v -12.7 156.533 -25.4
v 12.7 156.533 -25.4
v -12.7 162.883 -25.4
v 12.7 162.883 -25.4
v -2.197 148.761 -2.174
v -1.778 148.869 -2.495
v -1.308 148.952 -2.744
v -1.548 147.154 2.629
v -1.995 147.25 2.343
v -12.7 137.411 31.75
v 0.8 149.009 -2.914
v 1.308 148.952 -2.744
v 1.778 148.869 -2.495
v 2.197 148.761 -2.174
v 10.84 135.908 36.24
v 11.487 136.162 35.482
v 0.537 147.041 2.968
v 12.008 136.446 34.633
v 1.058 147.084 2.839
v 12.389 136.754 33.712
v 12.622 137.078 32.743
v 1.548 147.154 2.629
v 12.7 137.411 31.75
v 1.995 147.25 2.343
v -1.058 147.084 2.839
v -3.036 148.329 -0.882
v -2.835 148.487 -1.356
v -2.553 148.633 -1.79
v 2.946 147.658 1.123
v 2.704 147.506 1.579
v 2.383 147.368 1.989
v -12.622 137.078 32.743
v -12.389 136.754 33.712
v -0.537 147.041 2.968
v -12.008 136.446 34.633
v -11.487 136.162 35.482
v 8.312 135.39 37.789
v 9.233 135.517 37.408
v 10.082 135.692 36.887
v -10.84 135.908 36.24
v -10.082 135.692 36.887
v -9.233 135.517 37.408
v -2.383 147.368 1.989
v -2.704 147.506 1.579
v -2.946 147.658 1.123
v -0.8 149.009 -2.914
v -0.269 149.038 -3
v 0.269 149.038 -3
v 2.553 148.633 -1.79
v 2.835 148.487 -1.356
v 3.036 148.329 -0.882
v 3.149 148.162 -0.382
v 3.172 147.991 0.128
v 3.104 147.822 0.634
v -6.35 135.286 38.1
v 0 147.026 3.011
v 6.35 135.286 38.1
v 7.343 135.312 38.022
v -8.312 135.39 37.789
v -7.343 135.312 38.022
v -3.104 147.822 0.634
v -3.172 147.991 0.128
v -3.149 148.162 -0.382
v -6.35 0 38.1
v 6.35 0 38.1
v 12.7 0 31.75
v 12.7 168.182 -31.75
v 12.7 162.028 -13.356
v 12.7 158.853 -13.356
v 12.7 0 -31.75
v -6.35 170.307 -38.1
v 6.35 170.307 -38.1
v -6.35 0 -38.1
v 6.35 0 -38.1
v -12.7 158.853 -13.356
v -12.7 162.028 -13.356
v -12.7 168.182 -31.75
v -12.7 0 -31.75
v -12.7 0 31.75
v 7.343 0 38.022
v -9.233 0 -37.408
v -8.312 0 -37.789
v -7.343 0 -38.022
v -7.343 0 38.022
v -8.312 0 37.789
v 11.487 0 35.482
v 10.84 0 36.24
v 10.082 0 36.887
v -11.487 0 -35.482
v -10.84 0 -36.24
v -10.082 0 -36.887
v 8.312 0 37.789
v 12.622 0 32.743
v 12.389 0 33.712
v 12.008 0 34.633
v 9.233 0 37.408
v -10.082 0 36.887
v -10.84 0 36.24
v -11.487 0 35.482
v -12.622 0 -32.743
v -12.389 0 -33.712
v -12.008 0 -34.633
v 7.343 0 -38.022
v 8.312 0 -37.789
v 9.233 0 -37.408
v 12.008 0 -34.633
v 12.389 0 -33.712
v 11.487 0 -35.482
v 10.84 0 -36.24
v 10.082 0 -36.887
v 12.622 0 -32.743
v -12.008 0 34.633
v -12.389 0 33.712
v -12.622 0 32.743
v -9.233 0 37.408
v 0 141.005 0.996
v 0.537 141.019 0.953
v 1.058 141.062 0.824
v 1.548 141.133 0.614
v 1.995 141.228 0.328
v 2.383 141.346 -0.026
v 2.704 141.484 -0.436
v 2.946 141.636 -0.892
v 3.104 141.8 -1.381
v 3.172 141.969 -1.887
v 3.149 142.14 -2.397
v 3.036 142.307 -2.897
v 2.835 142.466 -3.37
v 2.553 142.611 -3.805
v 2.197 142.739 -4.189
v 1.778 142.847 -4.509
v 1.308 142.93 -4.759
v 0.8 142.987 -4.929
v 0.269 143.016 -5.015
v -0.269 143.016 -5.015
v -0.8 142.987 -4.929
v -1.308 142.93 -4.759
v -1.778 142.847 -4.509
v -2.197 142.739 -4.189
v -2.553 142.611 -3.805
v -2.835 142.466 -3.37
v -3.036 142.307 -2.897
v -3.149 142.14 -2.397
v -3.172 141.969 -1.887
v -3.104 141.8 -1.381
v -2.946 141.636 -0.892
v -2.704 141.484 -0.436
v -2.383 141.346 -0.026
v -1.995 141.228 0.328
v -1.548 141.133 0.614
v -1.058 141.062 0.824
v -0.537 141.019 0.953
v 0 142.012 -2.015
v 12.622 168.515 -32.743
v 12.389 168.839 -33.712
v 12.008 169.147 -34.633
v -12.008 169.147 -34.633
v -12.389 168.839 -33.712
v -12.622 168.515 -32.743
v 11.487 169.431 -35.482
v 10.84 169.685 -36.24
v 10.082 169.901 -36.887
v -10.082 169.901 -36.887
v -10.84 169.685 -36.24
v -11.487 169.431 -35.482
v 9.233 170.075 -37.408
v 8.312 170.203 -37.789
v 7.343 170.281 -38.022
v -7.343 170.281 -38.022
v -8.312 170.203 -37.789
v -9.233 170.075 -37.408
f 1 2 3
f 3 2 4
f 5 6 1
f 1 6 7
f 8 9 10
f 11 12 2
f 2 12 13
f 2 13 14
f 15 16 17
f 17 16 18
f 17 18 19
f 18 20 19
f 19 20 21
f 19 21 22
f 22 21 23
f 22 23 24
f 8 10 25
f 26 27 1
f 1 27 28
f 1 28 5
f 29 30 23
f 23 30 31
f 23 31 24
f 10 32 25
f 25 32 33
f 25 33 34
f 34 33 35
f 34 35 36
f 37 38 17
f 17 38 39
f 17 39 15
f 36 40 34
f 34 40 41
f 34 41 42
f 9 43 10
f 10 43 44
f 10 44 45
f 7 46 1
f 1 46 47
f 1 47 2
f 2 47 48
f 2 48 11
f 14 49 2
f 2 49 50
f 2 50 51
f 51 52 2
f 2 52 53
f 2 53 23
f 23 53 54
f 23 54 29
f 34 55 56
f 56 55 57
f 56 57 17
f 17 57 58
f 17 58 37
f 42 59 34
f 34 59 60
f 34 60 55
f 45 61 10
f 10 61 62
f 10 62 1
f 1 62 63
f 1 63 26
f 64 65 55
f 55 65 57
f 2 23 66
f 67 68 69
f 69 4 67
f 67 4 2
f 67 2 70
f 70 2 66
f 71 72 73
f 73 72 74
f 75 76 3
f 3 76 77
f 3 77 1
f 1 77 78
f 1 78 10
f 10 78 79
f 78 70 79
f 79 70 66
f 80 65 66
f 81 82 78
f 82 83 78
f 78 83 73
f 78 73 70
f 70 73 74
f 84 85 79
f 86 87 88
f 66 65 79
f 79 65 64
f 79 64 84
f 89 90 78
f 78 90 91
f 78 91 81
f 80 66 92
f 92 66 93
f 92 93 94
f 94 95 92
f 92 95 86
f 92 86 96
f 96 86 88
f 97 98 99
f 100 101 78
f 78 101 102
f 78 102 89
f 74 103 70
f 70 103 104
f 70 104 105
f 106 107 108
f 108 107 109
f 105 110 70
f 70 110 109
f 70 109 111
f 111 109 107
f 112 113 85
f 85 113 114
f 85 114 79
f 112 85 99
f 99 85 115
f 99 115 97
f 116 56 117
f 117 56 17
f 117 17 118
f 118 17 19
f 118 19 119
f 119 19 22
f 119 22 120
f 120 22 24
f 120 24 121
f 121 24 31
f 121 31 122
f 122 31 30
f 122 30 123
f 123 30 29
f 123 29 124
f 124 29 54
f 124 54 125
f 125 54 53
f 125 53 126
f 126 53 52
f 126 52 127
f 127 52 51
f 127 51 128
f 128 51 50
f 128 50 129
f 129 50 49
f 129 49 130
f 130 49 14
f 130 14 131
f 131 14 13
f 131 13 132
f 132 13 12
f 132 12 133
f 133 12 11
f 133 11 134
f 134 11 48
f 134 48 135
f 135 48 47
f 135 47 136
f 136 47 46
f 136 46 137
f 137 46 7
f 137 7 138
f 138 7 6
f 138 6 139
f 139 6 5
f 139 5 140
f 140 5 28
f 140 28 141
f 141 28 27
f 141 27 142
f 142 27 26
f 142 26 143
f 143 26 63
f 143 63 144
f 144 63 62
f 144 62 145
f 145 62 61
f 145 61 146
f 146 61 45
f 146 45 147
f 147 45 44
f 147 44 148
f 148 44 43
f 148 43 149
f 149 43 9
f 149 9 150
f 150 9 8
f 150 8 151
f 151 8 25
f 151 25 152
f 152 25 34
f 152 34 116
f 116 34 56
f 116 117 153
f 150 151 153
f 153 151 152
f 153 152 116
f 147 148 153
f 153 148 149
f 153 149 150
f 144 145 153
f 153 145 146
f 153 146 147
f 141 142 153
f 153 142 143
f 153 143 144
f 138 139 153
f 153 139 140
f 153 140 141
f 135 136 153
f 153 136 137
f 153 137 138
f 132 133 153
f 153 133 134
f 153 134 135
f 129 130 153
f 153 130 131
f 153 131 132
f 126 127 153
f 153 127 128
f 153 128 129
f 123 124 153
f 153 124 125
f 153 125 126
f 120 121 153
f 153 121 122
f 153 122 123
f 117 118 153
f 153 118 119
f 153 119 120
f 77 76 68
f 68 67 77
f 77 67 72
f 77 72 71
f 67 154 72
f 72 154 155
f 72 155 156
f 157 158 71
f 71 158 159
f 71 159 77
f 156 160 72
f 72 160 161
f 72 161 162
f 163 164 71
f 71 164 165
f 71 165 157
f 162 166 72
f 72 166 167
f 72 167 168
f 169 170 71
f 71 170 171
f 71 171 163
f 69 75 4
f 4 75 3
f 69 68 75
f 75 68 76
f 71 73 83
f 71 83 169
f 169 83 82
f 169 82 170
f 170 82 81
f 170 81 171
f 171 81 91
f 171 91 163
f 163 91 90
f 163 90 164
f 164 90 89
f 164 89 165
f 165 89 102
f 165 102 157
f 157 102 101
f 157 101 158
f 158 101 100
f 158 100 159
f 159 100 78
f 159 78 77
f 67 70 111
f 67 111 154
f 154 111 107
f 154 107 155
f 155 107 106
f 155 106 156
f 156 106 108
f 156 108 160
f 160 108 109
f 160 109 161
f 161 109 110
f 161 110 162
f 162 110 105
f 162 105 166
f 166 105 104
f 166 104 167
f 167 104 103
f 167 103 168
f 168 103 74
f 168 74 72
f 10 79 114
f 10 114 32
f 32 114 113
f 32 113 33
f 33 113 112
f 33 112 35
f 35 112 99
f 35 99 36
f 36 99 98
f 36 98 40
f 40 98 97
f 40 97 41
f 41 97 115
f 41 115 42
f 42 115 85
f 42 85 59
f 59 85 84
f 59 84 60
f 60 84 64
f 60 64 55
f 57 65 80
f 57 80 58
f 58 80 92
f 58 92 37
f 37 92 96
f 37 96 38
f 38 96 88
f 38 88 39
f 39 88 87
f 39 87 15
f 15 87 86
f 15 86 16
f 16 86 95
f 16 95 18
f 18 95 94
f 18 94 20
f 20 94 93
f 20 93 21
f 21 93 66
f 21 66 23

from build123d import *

# Parameters (mm, degrees)
SKETCH1_W               = 25.4
SKETCH1_H               = 76.2
BOSS_EXTRUDE1_DEPTH     = 160.782
CUT_EXTRUDE2_DEPTH      = 168.175421411
CUT_EXTRUDE2_DEPTH_BACK = 168.175421411
SKETCH5_R               = 3.175
CUT_EXTRUDE3_DEPTH      = 6.35
BOSS_EXTRUDE2_REACH     = 177.247
SKETCH1_5_W             = 25.4
SKETCH1_5_H             = 12.7
SKETCH8_W               = 25.4
SKETCH8_H               = 3.175
BOSS_EXTRUDE3_DEPTH     = 12.7
FILLET1_R               = 6.35


with BuildPart() as part:
    # Sketch1 → Boss-Extrude1 (new body)
    with BuildSketch(Plane(origin=(0, 0, 0), x_dir=(1, 0, 0), z_dir=(0, 1, 0))):
        Rectangle(SKETCH1_W, SKETCH1_H)
    extrude(amount=BOSS_EXTRUDE1_DEPTH)

    # Sketch4 → Cut-Extrude2 (cut, two sides: drawn at the far end of the back side and taken through both)
    with BuildSketch(Plane(origin=(12.7, 0, 0), x_dir=(0, 0, -1), z_dir=(1, 0, 0)).offset(-CUT_EXTRUDE2_DEPTH_BACK)):
        Polygon((38.1, 160.782), (-38.1, 160.782), (-38.1, 135.285836654), align=None)
    extrude(amount=CUT_EXTRUDE2_DEPTH + CUT_EXTRUDE2_DEPTH_BACK, mode=Mode.SUBTRACT)

    # Sketch5 → Cut-Extrude3 (cut)
    with BuildSketch(Plane(origin=(0, 133.129531097, 44.544517993), x_dir=(1, 0, 0), z_dir=(0, 0.9483236552061992, 0.3173046564050927))):
        with Locations((0, 46.971851591)):
            Circle(SKETCH5_R)
    extrude(amount=-CUT_EXTRUDE3_DEPTH, mode=Mode.SUBTRACT)

    # Boss-Extrude2: from a plane face, 177.247 long prism both ways, kept between that surface and its translate by the depth
    boss_extrude2_start = Plane(origin=(-12.7, 135.285836654, 38.1), z_dir=(0, -0.9483236552061991, -0.31730465640509276)) * Box(710.988, 710.988, 355.494, align=(Align.CENTER, Align.CENTER, Align.MIN), mode=Mode.PRIVATE)
    boss_extrude2_end = Plane(origin=(-12.7, 144.810836654, 38.1), z_dir=(0, -0.9483236552061991, -0.31730465640509276)) * Box(710.988, 710.988, 355.494, align=(Align.CENTER, Align.CENTER, Align.MIN), mode=Mode.PRIVATE)
    # Sketch1<5> → Boss-Extrude2 (add, from a surface)
    with BuildSketch(Plane(origin=(0, 0, 0), x_dir=(1, 0, 0), z_dir=(0, 1, 0)), mode=Mode.PRIVATE) as boss_extrude2_sk1:
        with Locations((0, 31.75)):
            Rectangle(SKETCH1_5_W, SKETCH1_5_H)
    boss_extrude2_tool1 = extrude(boss_extrude2_sk1.sketch, amount=BOSS_EXTRUDE2_REACH, both=True, mode=Mode.PRIVATE)
    add(((boss_extrude2_tool1 - boss_extrude2_start) & boss_extrude2_end).solids().sort_by_distance((0, 147.026476, 3.010928))[0])

    # Sketch8 → Boss-Extrude3 (add, along a direction that is not the sketch's normal)
    with BuildSketch(Plane.XY.offset(-25.4)):
        with Locations((0, 164.470139442)):
            Rectangle(SKETCH8_W, SKETCH8_H)
    extrude(amount=BOSS_EXTRUDE3_DEPTH, dir=(0, -0.31730465640509276, 0.9483236552061991))

    # Fillet1
    fillet1_edges = [part.edges().sort_by_distance(p)[0] for p in [
        (-12.7, 85.1535, -38.1),
        (12.7, 85.1535, -38.1),
        (-12.7, 67.642918327, 38.1),
        (12.7, 67.642918327, 38.1),
    ]]
    fillet(fillet1_edges, radius=FILLET1_R)


solid = part.part
